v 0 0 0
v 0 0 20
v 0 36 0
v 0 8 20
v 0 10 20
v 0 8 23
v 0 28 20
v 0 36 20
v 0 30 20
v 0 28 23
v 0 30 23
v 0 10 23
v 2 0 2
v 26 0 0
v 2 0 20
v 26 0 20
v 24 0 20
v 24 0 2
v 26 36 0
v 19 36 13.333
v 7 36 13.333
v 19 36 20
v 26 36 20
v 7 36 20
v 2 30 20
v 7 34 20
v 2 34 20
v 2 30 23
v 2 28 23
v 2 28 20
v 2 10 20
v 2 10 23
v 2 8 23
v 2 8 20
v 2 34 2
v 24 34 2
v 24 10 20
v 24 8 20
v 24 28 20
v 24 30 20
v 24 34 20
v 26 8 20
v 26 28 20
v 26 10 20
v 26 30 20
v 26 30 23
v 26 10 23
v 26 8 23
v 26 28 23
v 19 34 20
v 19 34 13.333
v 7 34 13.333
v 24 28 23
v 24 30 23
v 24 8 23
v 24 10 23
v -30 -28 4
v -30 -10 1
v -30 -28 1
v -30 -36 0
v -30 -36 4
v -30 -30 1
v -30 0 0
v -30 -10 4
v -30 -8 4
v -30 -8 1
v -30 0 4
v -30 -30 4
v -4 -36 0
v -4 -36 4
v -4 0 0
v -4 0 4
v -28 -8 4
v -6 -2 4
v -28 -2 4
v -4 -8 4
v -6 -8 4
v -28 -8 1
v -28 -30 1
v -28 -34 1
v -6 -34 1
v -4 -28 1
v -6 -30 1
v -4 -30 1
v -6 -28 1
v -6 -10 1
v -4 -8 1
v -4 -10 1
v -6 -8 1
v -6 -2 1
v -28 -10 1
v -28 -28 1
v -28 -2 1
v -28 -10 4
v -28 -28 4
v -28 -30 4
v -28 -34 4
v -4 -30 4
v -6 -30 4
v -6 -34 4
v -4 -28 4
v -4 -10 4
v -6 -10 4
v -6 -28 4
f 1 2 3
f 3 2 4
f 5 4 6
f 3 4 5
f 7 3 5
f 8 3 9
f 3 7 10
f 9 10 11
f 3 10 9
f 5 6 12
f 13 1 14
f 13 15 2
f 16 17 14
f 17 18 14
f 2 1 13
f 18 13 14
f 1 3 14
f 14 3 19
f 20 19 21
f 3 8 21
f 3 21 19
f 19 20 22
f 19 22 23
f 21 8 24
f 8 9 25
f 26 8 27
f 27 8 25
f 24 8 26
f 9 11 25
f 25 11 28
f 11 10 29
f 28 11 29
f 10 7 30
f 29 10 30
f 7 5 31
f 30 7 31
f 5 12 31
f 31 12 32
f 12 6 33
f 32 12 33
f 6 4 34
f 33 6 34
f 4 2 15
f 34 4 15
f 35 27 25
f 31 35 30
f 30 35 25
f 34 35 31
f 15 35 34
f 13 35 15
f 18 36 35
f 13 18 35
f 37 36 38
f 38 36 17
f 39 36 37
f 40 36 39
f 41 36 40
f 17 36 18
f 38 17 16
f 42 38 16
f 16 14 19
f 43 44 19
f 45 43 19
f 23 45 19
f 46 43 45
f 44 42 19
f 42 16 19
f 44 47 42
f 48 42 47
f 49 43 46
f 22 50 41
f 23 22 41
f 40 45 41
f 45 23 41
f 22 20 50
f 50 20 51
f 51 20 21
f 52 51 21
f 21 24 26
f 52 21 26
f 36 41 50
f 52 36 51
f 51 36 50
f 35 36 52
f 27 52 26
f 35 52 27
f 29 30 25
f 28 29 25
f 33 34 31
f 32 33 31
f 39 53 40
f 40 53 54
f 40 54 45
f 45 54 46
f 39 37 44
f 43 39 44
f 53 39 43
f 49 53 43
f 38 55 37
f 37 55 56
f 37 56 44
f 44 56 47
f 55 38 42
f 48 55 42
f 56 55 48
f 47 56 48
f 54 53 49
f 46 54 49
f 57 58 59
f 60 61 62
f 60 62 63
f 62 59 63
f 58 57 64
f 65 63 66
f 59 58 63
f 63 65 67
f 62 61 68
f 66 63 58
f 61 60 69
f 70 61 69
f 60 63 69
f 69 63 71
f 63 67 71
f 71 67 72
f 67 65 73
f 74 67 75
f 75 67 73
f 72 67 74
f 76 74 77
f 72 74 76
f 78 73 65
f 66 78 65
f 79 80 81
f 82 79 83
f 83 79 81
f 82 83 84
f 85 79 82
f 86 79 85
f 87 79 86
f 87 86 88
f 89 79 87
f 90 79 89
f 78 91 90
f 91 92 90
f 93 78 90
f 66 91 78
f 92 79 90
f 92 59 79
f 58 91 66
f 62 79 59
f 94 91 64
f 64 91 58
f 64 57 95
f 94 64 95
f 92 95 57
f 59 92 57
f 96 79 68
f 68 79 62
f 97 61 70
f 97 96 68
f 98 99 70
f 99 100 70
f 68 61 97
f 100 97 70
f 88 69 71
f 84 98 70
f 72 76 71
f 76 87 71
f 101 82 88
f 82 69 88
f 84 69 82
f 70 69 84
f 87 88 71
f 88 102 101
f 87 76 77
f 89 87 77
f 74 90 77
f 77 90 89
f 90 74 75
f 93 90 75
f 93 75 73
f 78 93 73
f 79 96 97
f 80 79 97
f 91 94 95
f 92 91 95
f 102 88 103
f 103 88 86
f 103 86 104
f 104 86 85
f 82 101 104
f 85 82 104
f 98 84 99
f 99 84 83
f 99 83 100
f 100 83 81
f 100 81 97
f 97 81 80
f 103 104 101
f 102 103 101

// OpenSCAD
peg_radius = 0.8;
peg_height = 3;
peg_faces = 50;

module create_peg (x, y, h) {
	translate([x, y, h]) cube([2, 2, peg_height]);

// cylindar(h = peg_height, r = peg_radius, $fn = peg_faces);
}


module top() {

	height = 20;
	peg_depth = height;

	translate([0, 0, -25]) {
		 difference() {
			// Nase cube with cutout
			cube([26, 36, height]);
			translate([2, 2, 2]) cube([22, 32, height]);

			// MIDI Cutout
			translate([2, 0, 2]) cube([22, 2, height]);

			// Pin Curout
			translate([7, 34, height / 1.5]) cube([12, 2, height]);
		}

		// Cylindrical pegs
		create_peg(0, 8, peg_depth);
		create_peg(0, 28, peg_depth);
		create_peg(24, 8, peg_depth);
		create_peg(24, 28, peg_depth);
	}	
}

module bottom() {
	
	height = 4;
	peg_depth = 0;

	difference() {
		// Base cube with cutout
		cube([26, 36, height]);
		translate([2, 2, -1]) cube([22, 32, height]);

		// Cylindrical peg holes
		create_peg(0, 8, peg_depth);
		create_peg(0, 28, peg_depth);
		create_peg(24, 8, peg_depth);
		create_peg(24, 28, peg_depth);
	}
}


translate([0, 0, 25]) top();
rotate ([180, 0, 0]) translate([-30, 0, -4]) bottom();
